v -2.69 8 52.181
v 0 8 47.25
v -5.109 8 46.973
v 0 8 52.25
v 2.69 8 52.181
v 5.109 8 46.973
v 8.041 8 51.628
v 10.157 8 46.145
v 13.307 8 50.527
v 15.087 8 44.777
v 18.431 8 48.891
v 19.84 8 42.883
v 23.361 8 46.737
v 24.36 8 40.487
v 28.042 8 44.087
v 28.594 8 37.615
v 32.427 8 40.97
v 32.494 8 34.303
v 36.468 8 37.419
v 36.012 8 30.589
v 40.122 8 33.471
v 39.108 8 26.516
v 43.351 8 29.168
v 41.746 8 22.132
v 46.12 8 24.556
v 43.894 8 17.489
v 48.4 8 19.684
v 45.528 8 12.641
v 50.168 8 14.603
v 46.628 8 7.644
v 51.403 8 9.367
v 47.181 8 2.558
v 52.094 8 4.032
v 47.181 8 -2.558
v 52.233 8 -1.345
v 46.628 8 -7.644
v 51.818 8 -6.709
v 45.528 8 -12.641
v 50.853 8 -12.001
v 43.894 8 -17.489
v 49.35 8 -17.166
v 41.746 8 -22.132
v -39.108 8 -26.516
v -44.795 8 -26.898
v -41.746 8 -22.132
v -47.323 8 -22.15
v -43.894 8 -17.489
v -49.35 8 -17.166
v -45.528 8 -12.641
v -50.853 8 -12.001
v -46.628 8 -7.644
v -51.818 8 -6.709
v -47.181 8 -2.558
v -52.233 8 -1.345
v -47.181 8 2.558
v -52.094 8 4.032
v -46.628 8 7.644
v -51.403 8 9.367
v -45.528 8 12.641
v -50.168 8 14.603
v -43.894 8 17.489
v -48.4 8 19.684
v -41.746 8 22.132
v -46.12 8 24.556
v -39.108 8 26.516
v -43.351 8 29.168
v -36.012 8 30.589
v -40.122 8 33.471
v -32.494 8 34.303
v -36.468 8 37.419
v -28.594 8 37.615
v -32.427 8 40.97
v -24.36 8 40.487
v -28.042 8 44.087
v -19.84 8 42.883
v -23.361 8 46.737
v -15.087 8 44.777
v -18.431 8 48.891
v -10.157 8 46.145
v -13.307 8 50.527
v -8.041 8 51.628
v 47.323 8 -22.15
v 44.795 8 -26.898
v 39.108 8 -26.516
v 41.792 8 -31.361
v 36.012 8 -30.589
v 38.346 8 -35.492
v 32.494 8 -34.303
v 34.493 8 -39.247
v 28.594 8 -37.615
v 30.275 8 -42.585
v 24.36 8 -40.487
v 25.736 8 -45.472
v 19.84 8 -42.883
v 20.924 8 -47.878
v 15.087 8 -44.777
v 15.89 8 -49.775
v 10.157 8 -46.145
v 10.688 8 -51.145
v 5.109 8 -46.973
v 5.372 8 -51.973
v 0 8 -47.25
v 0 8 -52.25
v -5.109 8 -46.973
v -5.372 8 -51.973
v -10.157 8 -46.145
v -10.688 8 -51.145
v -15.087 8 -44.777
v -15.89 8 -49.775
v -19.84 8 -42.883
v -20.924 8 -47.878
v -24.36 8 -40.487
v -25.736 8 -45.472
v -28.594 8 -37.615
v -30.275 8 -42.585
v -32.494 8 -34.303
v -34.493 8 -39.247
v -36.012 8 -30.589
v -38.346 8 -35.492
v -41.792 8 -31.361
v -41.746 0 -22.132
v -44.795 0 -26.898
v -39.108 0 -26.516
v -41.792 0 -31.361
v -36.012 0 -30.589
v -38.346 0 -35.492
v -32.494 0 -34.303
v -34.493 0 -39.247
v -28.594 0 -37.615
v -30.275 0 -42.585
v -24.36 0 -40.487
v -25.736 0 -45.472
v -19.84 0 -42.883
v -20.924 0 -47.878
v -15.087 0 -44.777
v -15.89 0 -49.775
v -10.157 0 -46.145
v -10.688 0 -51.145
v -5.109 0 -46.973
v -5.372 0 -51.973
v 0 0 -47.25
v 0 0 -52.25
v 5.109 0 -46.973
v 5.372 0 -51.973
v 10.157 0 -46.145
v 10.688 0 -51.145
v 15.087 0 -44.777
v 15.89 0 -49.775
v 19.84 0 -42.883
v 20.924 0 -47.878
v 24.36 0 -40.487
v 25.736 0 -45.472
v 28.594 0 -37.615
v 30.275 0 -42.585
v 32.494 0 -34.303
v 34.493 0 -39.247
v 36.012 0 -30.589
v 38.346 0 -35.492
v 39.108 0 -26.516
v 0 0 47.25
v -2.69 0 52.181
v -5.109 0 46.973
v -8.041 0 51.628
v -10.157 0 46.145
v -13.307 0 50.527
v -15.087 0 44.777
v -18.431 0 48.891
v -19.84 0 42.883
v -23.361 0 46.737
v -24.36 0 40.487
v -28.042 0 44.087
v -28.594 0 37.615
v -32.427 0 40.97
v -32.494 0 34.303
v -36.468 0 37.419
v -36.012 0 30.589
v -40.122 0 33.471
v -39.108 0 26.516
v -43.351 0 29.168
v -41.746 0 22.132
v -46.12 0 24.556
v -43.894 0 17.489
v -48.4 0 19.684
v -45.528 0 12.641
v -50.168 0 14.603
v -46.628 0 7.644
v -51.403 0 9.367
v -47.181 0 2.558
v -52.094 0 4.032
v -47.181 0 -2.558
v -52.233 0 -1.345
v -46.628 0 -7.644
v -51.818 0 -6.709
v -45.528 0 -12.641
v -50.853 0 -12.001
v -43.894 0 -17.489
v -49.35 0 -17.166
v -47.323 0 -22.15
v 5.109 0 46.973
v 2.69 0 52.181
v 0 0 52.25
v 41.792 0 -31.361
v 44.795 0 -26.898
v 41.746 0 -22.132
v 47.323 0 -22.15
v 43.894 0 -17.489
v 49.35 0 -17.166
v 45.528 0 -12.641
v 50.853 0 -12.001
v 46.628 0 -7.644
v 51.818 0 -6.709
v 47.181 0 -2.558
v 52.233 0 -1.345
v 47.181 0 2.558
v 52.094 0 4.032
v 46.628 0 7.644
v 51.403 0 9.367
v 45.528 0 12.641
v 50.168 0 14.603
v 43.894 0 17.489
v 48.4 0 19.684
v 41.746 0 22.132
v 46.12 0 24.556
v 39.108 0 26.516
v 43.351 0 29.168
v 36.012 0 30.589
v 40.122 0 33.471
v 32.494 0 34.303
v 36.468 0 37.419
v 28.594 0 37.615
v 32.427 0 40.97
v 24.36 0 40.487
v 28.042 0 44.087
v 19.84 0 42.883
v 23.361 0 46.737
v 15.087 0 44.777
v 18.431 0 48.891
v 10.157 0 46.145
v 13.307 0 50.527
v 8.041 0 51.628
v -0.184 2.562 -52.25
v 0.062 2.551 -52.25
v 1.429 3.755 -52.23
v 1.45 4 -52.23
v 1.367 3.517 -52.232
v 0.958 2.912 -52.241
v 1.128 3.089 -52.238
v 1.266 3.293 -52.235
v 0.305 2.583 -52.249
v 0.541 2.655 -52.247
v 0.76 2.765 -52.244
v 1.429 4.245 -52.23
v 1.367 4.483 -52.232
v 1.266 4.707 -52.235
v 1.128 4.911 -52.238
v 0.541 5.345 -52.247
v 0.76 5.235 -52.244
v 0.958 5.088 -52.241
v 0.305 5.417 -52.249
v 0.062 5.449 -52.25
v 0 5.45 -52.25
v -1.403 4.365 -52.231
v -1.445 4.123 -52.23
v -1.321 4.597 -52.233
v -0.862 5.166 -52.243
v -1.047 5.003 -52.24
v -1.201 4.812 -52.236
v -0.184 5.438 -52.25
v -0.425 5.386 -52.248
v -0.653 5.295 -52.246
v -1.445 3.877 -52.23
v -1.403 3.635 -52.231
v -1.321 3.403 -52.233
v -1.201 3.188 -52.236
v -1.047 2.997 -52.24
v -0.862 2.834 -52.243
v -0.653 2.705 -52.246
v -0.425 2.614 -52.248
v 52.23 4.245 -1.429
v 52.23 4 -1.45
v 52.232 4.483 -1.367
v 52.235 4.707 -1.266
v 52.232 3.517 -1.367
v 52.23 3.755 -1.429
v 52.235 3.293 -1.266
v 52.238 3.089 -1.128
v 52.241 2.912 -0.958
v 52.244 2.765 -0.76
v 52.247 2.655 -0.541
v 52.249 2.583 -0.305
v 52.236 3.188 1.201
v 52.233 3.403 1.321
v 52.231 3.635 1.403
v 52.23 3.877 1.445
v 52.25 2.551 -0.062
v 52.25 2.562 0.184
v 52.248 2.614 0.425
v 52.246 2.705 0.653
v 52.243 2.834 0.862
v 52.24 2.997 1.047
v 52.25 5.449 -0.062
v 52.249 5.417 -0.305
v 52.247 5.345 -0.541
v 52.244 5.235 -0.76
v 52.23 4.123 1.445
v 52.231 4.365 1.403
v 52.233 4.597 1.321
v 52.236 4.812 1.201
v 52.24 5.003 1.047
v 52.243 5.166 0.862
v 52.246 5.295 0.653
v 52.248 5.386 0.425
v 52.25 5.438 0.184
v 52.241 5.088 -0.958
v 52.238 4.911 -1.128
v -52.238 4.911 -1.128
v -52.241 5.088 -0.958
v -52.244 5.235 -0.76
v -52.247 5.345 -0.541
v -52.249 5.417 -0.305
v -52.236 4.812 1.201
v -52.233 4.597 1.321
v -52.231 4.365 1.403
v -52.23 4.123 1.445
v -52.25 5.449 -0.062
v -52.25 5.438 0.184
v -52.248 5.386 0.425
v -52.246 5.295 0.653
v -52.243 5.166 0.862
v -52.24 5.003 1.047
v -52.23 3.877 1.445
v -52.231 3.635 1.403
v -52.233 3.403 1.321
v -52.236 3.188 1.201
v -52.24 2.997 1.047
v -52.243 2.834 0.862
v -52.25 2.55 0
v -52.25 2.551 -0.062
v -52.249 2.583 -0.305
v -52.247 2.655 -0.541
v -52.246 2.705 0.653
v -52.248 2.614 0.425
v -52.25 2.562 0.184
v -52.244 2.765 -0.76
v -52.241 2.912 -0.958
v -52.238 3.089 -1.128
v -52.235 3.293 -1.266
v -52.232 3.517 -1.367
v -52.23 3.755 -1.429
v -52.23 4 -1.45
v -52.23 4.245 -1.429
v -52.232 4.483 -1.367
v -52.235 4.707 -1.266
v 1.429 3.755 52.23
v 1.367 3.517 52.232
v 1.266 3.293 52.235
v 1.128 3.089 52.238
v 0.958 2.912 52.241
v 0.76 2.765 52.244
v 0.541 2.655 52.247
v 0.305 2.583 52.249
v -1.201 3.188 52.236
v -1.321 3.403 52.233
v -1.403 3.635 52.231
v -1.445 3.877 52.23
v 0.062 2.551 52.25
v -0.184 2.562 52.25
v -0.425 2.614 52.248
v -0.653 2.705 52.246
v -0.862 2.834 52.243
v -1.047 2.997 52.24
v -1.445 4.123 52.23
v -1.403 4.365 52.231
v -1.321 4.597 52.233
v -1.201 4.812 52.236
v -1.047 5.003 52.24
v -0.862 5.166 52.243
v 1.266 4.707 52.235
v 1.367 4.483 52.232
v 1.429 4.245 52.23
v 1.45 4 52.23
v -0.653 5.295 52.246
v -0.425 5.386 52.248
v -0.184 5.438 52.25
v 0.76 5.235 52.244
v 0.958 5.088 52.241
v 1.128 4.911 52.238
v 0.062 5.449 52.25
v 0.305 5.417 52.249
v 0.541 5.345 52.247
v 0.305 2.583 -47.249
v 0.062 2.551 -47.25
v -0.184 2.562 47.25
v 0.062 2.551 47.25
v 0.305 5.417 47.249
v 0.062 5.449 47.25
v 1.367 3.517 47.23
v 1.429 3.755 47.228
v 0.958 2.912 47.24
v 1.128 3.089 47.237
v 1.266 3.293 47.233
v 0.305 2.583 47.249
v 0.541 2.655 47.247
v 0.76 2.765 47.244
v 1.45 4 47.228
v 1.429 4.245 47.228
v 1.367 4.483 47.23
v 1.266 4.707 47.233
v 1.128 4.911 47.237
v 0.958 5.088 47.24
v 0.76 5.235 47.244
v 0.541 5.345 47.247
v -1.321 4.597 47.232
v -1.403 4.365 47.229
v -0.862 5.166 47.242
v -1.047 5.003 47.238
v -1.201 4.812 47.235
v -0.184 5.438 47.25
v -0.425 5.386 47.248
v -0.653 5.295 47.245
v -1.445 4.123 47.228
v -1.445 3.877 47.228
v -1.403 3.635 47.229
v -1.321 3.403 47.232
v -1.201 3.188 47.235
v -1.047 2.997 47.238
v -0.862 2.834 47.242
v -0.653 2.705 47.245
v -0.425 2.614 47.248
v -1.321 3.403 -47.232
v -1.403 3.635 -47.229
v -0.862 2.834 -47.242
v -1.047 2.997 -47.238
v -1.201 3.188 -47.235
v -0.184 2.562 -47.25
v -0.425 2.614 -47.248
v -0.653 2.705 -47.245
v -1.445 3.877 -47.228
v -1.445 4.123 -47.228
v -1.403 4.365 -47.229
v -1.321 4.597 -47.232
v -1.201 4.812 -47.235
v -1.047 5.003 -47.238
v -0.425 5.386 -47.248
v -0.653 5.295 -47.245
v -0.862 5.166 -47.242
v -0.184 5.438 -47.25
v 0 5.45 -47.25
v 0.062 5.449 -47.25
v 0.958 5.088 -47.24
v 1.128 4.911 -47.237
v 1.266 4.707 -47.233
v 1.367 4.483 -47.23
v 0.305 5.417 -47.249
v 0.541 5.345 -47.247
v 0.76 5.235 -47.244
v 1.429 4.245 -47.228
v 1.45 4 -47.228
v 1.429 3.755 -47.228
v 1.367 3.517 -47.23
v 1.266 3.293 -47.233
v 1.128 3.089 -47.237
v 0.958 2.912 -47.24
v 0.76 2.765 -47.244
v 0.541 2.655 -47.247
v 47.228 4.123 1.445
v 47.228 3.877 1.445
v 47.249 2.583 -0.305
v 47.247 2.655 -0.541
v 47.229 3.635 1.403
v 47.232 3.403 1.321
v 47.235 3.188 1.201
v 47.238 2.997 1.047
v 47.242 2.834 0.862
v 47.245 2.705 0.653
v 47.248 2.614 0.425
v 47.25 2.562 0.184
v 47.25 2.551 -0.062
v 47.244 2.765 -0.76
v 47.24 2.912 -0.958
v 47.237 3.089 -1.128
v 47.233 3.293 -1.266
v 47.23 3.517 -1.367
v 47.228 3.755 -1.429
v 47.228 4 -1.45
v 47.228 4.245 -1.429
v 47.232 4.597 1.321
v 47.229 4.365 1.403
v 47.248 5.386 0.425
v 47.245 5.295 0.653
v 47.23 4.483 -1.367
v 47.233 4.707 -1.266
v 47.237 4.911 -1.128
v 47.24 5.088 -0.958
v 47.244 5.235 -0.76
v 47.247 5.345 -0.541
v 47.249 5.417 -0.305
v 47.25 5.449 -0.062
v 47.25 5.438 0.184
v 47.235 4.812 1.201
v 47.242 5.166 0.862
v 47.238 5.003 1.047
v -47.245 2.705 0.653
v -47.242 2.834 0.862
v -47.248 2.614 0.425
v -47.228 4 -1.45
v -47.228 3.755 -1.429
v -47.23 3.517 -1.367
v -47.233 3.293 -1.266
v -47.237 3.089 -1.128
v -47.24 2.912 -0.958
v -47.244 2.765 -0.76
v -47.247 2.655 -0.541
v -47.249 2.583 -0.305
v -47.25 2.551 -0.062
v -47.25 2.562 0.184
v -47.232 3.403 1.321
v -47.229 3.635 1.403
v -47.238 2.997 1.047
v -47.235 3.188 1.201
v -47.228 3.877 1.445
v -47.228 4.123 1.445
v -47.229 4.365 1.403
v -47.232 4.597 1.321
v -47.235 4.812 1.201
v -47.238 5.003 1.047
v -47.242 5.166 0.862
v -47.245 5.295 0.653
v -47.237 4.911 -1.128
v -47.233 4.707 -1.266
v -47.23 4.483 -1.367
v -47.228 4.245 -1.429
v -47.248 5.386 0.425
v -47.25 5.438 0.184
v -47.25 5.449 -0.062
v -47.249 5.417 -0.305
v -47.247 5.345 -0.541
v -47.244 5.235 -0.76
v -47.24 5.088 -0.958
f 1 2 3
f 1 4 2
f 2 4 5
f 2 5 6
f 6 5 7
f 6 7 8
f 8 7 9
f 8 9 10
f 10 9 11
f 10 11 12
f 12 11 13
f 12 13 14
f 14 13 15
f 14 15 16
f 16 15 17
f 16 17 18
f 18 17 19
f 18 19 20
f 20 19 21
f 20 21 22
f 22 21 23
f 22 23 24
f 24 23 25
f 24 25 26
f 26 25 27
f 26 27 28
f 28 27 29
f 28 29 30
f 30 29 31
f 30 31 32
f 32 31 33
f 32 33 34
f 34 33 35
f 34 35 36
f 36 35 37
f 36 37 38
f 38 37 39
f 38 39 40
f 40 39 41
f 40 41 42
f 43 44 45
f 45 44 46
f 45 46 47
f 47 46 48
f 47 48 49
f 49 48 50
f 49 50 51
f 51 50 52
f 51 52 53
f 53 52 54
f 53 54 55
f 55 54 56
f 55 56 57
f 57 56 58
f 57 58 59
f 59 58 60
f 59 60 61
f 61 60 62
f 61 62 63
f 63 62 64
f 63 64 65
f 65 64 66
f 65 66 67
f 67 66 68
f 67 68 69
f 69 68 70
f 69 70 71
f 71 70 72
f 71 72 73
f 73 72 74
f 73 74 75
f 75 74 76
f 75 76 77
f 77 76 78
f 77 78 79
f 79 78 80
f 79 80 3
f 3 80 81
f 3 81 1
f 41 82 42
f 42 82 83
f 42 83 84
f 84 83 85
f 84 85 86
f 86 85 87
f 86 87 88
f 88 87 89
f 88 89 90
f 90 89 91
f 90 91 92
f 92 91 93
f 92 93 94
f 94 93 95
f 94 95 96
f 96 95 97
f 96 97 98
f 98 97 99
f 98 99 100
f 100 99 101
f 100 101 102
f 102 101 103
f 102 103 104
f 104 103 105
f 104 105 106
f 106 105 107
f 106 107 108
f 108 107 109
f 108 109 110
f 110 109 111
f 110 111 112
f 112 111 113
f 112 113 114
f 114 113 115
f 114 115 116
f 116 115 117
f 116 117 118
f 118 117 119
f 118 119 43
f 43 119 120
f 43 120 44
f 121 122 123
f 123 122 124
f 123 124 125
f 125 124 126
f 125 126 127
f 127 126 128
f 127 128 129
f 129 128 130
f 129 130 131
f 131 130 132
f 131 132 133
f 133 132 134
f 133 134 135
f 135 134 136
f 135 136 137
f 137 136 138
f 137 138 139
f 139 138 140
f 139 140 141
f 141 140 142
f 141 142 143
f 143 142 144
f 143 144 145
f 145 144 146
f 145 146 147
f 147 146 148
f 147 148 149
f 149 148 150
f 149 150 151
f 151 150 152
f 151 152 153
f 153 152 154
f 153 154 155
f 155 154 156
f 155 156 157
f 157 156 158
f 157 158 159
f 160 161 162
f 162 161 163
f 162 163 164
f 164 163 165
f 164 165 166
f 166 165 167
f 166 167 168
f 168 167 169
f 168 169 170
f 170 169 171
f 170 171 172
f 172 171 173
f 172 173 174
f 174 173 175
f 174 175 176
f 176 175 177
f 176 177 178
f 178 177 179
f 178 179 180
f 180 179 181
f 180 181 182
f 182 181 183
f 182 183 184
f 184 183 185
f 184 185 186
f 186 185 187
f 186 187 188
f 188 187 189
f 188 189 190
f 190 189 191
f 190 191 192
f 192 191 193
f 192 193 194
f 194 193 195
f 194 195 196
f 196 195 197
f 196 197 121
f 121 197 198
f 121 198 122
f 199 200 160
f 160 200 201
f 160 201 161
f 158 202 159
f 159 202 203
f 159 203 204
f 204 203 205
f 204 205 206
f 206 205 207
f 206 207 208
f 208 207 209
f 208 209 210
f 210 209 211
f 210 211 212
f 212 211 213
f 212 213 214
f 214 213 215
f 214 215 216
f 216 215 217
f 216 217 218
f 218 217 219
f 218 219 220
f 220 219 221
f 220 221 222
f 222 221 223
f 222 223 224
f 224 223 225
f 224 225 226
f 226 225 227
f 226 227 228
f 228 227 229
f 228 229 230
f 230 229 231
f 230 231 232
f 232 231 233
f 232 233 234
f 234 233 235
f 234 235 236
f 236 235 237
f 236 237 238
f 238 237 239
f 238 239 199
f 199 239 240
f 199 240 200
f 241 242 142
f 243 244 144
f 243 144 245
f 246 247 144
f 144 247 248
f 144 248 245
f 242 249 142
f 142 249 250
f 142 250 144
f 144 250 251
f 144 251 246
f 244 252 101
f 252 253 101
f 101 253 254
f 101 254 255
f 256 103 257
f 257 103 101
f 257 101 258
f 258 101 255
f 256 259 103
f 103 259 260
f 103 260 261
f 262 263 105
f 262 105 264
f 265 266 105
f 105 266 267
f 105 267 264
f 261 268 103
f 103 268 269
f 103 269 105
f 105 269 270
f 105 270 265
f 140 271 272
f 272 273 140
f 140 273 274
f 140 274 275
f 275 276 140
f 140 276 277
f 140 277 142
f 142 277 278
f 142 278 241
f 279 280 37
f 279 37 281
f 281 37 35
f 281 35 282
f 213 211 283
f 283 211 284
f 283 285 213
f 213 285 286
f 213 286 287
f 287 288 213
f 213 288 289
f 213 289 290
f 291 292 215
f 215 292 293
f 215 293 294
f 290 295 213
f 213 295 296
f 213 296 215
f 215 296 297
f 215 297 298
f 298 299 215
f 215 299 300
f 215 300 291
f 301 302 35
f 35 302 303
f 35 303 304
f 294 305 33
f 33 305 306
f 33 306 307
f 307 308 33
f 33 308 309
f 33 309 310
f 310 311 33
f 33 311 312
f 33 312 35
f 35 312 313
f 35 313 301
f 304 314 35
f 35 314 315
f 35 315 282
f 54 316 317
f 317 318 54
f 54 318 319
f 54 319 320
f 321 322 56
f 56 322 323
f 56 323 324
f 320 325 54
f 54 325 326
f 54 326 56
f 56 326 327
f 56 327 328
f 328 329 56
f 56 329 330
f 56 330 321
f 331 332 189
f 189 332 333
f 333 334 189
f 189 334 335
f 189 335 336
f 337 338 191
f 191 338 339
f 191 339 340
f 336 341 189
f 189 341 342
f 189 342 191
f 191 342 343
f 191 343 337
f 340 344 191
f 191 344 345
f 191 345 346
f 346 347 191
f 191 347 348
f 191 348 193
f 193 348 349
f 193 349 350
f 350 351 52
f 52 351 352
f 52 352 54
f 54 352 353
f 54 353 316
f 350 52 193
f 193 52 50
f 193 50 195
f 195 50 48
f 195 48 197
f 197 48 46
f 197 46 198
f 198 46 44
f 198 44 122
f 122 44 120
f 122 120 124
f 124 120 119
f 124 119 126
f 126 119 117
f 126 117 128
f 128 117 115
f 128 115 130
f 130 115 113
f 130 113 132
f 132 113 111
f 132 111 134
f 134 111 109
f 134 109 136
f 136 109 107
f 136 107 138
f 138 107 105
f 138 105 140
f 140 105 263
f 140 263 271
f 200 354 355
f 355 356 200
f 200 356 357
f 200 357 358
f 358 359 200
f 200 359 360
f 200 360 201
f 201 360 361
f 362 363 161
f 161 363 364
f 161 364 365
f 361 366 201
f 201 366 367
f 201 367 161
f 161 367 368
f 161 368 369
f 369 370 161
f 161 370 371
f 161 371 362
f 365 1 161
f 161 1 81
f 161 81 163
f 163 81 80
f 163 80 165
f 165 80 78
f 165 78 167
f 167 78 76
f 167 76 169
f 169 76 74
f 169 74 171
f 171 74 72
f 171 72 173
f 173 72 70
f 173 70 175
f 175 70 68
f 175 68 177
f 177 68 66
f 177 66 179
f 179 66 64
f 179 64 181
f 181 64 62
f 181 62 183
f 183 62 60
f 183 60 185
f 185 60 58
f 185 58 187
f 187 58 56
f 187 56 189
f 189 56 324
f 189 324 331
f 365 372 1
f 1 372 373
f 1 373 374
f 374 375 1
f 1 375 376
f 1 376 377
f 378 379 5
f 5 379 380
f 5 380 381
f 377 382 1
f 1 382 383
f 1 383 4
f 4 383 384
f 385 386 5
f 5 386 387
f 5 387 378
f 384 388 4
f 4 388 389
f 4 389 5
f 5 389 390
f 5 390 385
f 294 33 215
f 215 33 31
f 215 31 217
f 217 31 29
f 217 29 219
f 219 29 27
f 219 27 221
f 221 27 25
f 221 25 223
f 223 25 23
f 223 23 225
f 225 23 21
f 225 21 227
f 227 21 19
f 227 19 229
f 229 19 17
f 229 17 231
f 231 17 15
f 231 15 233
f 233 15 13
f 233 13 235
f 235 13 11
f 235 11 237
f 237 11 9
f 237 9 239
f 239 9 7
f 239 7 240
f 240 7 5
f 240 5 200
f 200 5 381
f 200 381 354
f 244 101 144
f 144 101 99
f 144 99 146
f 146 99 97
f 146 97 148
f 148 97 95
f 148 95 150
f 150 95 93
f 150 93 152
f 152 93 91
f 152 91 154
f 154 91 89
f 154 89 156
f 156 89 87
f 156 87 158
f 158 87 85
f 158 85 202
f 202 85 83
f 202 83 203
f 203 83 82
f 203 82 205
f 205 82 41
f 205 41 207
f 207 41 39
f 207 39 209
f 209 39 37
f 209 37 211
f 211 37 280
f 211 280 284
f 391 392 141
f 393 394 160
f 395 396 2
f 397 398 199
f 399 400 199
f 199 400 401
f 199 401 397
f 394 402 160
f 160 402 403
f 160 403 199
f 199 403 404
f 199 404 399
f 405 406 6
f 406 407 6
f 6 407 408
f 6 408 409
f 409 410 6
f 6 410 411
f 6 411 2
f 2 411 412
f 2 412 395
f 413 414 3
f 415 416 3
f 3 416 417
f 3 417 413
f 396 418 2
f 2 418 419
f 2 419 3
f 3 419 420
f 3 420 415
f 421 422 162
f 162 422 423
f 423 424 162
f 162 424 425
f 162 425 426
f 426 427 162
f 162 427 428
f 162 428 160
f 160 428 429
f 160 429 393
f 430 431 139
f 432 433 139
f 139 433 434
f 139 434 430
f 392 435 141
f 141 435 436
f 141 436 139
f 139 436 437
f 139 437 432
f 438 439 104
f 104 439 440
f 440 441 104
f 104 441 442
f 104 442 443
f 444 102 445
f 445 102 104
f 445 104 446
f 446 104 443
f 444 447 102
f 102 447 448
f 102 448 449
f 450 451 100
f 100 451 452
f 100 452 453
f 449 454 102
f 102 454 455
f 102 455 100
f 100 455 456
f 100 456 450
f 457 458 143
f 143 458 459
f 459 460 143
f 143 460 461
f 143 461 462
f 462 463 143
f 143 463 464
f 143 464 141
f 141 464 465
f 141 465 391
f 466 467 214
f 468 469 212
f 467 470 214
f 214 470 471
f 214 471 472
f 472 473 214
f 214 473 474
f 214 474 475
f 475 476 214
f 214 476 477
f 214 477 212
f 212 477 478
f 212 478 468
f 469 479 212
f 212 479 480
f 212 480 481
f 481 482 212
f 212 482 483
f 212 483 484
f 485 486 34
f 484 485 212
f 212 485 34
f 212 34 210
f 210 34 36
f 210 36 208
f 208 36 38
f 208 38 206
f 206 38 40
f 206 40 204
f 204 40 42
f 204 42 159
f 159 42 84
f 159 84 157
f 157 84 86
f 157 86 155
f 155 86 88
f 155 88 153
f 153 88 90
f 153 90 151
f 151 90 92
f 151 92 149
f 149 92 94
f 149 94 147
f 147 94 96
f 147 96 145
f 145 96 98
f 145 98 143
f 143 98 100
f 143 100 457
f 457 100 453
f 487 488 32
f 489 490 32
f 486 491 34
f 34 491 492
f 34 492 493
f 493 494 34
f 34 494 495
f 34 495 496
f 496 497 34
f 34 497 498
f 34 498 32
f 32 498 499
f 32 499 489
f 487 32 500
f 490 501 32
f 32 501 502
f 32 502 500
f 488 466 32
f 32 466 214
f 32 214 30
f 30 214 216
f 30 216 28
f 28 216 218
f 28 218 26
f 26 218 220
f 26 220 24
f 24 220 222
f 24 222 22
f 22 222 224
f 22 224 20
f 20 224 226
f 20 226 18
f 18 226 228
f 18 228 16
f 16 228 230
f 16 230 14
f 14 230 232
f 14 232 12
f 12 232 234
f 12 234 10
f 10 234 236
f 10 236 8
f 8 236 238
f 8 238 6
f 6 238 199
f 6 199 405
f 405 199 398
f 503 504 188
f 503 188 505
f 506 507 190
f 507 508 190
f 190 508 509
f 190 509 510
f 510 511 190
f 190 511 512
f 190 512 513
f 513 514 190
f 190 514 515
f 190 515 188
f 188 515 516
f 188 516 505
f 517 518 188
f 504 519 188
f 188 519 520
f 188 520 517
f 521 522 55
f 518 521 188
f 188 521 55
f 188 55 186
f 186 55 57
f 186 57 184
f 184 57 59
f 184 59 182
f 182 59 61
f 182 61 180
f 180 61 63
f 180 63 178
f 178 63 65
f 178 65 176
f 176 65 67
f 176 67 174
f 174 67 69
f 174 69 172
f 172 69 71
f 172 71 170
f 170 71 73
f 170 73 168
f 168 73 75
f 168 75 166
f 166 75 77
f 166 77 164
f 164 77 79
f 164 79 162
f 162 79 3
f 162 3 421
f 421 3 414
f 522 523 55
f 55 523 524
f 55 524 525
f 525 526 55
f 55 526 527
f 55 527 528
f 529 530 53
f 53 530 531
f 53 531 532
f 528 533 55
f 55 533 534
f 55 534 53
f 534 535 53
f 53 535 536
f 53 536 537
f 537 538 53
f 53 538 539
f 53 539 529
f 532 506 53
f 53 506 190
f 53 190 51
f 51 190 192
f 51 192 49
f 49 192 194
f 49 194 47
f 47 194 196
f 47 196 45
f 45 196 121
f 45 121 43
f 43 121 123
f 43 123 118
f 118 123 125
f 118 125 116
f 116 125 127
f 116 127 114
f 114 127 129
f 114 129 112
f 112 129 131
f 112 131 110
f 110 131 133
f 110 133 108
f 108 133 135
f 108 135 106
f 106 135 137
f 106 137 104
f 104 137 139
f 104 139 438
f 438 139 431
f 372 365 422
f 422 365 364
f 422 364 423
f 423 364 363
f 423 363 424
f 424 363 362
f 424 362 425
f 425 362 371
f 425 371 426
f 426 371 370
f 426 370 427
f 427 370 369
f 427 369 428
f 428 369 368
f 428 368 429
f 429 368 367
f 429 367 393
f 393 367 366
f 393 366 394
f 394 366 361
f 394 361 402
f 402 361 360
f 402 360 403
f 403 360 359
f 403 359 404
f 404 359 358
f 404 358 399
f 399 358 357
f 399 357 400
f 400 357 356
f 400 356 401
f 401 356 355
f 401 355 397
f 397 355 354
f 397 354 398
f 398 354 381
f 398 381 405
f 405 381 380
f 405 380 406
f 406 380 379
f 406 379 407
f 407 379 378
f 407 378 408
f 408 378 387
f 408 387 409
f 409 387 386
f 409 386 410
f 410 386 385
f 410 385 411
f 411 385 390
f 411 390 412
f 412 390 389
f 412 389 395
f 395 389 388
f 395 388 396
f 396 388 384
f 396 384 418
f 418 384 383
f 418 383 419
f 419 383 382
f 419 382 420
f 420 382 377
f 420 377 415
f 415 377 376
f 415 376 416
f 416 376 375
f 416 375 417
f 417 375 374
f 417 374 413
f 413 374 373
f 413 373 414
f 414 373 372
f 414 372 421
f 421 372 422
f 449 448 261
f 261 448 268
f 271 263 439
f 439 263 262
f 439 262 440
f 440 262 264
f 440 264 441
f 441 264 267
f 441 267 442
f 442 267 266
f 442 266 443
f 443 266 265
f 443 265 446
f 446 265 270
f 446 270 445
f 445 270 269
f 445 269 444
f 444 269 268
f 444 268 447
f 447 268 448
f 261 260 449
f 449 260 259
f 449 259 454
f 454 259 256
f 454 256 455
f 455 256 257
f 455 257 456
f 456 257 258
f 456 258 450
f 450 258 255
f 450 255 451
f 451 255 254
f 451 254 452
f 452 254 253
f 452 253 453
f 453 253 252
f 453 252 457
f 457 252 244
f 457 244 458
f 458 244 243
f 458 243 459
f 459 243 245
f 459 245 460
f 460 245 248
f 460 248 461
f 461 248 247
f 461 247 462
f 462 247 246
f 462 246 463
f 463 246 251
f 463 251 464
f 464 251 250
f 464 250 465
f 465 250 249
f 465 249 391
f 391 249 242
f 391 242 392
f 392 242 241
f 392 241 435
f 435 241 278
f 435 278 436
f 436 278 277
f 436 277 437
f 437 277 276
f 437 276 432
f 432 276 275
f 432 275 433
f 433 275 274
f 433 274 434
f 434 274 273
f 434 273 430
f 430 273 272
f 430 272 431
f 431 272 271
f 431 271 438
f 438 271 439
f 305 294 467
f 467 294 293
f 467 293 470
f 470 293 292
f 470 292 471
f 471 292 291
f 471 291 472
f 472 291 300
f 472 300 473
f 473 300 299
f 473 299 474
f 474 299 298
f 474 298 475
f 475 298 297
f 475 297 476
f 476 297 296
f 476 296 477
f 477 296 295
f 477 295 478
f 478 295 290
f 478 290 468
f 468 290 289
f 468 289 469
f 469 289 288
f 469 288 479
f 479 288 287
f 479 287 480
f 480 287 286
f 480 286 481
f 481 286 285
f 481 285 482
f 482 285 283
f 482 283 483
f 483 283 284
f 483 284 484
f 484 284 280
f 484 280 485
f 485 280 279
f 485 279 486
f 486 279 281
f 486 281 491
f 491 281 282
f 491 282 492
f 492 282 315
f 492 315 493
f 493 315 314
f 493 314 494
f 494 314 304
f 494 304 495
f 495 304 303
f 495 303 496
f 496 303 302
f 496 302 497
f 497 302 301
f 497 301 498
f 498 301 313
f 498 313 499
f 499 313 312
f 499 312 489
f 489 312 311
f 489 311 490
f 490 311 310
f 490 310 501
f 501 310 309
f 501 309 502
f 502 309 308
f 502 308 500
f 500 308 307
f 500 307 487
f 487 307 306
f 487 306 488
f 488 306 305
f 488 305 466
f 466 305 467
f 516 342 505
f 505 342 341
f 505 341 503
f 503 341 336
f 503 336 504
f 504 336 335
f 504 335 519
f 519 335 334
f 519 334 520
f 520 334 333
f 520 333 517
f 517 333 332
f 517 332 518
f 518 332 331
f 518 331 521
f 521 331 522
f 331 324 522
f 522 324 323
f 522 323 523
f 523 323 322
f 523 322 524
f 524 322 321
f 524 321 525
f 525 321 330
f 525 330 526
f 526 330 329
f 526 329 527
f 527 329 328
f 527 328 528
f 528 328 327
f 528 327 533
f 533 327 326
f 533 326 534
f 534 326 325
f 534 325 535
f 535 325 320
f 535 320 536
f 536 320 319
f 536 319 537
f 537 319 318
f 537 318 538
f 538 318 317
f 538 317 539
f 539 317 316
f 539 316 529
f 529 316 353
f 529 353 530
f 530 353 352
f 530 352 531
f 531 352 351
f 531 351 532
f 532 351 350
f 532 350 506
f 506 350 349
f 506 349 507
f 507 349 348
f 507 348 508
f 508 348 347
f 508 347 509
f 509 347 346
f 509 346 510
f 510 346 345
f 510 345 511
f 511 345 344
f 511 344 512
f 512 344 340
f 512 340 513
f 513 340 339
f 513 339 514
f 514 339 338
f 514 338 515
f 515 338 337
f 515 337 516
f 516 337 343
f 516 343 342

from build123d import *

# Parameters (mm, degrees)
SKETCH1_R               = 52.25
SKETCH1_R_2             = 47.25
BOSS_EXTRUDE1_DEPTH     = 8
SKETCH2_R               = 1.45
CUT_EXTRUDE1_DEPTH      = 53.25
CUT_EXTRUDE1_DEPTH_BACK = 53.25
SKETCH3_R               = 1.45
CUT_EXTRUDE2_DEPTH      = 53.2500001
CUT_EXTRUDE2_DEPTH_BACK = 53.2500001


with BuildPart() as part:
    # Sketch1 → Boss-Extrude1 (new body)
    with BuildSketch(Plane(origin=(0, 0, 0), x_dir=(1, 0, 0), z_dir=(0, 1, 0))):
        Circle(SKETCH1_R)
        Circle(SKETCH1_R_2, mode=Mode.SUBTRACT)
    extrude(amount=BOSS_EXTRUDE1_DEPTH)

    # Sketch2 → Cut-Extrude1 (cut, two sides)
    with BuildSketch(Plane.XY) as cut_extrude1_sk:
        with Locations((0, 4)):
            Circle(SKETCH2_R)
    extrude(amount=CUT_EXTRUDE1_DEPTH, mode=Mode.SUBTRACT)
    extrude(cut_extrude1_sk.sketch, amount=-CUT_EXTRUDE1_DEPTH_BACK, mode=Mode.SUBTRACT)

    # Sketch3 → Cut-Extrude2 (cut, two sides)
    with BuildSketch(Plane(origin=(0, 0, 0), x_dir=(0, 0, -1), z_dir=(1, 0, 0))) as cut_extrude2_sk:
        with Locations((0, 4)):
            Circle(SKETCH3_R)
    extrude(amount=CUT_EXTRUDE2_DEPTH, mode=Mode.SUBTRACT)
    extrude(cut_extrude2_sk.sketch, amount=-CUT_EXTRUDE2_DEPTH_BACK, mode=Mode.SUBTRACT)


solid = part.part
